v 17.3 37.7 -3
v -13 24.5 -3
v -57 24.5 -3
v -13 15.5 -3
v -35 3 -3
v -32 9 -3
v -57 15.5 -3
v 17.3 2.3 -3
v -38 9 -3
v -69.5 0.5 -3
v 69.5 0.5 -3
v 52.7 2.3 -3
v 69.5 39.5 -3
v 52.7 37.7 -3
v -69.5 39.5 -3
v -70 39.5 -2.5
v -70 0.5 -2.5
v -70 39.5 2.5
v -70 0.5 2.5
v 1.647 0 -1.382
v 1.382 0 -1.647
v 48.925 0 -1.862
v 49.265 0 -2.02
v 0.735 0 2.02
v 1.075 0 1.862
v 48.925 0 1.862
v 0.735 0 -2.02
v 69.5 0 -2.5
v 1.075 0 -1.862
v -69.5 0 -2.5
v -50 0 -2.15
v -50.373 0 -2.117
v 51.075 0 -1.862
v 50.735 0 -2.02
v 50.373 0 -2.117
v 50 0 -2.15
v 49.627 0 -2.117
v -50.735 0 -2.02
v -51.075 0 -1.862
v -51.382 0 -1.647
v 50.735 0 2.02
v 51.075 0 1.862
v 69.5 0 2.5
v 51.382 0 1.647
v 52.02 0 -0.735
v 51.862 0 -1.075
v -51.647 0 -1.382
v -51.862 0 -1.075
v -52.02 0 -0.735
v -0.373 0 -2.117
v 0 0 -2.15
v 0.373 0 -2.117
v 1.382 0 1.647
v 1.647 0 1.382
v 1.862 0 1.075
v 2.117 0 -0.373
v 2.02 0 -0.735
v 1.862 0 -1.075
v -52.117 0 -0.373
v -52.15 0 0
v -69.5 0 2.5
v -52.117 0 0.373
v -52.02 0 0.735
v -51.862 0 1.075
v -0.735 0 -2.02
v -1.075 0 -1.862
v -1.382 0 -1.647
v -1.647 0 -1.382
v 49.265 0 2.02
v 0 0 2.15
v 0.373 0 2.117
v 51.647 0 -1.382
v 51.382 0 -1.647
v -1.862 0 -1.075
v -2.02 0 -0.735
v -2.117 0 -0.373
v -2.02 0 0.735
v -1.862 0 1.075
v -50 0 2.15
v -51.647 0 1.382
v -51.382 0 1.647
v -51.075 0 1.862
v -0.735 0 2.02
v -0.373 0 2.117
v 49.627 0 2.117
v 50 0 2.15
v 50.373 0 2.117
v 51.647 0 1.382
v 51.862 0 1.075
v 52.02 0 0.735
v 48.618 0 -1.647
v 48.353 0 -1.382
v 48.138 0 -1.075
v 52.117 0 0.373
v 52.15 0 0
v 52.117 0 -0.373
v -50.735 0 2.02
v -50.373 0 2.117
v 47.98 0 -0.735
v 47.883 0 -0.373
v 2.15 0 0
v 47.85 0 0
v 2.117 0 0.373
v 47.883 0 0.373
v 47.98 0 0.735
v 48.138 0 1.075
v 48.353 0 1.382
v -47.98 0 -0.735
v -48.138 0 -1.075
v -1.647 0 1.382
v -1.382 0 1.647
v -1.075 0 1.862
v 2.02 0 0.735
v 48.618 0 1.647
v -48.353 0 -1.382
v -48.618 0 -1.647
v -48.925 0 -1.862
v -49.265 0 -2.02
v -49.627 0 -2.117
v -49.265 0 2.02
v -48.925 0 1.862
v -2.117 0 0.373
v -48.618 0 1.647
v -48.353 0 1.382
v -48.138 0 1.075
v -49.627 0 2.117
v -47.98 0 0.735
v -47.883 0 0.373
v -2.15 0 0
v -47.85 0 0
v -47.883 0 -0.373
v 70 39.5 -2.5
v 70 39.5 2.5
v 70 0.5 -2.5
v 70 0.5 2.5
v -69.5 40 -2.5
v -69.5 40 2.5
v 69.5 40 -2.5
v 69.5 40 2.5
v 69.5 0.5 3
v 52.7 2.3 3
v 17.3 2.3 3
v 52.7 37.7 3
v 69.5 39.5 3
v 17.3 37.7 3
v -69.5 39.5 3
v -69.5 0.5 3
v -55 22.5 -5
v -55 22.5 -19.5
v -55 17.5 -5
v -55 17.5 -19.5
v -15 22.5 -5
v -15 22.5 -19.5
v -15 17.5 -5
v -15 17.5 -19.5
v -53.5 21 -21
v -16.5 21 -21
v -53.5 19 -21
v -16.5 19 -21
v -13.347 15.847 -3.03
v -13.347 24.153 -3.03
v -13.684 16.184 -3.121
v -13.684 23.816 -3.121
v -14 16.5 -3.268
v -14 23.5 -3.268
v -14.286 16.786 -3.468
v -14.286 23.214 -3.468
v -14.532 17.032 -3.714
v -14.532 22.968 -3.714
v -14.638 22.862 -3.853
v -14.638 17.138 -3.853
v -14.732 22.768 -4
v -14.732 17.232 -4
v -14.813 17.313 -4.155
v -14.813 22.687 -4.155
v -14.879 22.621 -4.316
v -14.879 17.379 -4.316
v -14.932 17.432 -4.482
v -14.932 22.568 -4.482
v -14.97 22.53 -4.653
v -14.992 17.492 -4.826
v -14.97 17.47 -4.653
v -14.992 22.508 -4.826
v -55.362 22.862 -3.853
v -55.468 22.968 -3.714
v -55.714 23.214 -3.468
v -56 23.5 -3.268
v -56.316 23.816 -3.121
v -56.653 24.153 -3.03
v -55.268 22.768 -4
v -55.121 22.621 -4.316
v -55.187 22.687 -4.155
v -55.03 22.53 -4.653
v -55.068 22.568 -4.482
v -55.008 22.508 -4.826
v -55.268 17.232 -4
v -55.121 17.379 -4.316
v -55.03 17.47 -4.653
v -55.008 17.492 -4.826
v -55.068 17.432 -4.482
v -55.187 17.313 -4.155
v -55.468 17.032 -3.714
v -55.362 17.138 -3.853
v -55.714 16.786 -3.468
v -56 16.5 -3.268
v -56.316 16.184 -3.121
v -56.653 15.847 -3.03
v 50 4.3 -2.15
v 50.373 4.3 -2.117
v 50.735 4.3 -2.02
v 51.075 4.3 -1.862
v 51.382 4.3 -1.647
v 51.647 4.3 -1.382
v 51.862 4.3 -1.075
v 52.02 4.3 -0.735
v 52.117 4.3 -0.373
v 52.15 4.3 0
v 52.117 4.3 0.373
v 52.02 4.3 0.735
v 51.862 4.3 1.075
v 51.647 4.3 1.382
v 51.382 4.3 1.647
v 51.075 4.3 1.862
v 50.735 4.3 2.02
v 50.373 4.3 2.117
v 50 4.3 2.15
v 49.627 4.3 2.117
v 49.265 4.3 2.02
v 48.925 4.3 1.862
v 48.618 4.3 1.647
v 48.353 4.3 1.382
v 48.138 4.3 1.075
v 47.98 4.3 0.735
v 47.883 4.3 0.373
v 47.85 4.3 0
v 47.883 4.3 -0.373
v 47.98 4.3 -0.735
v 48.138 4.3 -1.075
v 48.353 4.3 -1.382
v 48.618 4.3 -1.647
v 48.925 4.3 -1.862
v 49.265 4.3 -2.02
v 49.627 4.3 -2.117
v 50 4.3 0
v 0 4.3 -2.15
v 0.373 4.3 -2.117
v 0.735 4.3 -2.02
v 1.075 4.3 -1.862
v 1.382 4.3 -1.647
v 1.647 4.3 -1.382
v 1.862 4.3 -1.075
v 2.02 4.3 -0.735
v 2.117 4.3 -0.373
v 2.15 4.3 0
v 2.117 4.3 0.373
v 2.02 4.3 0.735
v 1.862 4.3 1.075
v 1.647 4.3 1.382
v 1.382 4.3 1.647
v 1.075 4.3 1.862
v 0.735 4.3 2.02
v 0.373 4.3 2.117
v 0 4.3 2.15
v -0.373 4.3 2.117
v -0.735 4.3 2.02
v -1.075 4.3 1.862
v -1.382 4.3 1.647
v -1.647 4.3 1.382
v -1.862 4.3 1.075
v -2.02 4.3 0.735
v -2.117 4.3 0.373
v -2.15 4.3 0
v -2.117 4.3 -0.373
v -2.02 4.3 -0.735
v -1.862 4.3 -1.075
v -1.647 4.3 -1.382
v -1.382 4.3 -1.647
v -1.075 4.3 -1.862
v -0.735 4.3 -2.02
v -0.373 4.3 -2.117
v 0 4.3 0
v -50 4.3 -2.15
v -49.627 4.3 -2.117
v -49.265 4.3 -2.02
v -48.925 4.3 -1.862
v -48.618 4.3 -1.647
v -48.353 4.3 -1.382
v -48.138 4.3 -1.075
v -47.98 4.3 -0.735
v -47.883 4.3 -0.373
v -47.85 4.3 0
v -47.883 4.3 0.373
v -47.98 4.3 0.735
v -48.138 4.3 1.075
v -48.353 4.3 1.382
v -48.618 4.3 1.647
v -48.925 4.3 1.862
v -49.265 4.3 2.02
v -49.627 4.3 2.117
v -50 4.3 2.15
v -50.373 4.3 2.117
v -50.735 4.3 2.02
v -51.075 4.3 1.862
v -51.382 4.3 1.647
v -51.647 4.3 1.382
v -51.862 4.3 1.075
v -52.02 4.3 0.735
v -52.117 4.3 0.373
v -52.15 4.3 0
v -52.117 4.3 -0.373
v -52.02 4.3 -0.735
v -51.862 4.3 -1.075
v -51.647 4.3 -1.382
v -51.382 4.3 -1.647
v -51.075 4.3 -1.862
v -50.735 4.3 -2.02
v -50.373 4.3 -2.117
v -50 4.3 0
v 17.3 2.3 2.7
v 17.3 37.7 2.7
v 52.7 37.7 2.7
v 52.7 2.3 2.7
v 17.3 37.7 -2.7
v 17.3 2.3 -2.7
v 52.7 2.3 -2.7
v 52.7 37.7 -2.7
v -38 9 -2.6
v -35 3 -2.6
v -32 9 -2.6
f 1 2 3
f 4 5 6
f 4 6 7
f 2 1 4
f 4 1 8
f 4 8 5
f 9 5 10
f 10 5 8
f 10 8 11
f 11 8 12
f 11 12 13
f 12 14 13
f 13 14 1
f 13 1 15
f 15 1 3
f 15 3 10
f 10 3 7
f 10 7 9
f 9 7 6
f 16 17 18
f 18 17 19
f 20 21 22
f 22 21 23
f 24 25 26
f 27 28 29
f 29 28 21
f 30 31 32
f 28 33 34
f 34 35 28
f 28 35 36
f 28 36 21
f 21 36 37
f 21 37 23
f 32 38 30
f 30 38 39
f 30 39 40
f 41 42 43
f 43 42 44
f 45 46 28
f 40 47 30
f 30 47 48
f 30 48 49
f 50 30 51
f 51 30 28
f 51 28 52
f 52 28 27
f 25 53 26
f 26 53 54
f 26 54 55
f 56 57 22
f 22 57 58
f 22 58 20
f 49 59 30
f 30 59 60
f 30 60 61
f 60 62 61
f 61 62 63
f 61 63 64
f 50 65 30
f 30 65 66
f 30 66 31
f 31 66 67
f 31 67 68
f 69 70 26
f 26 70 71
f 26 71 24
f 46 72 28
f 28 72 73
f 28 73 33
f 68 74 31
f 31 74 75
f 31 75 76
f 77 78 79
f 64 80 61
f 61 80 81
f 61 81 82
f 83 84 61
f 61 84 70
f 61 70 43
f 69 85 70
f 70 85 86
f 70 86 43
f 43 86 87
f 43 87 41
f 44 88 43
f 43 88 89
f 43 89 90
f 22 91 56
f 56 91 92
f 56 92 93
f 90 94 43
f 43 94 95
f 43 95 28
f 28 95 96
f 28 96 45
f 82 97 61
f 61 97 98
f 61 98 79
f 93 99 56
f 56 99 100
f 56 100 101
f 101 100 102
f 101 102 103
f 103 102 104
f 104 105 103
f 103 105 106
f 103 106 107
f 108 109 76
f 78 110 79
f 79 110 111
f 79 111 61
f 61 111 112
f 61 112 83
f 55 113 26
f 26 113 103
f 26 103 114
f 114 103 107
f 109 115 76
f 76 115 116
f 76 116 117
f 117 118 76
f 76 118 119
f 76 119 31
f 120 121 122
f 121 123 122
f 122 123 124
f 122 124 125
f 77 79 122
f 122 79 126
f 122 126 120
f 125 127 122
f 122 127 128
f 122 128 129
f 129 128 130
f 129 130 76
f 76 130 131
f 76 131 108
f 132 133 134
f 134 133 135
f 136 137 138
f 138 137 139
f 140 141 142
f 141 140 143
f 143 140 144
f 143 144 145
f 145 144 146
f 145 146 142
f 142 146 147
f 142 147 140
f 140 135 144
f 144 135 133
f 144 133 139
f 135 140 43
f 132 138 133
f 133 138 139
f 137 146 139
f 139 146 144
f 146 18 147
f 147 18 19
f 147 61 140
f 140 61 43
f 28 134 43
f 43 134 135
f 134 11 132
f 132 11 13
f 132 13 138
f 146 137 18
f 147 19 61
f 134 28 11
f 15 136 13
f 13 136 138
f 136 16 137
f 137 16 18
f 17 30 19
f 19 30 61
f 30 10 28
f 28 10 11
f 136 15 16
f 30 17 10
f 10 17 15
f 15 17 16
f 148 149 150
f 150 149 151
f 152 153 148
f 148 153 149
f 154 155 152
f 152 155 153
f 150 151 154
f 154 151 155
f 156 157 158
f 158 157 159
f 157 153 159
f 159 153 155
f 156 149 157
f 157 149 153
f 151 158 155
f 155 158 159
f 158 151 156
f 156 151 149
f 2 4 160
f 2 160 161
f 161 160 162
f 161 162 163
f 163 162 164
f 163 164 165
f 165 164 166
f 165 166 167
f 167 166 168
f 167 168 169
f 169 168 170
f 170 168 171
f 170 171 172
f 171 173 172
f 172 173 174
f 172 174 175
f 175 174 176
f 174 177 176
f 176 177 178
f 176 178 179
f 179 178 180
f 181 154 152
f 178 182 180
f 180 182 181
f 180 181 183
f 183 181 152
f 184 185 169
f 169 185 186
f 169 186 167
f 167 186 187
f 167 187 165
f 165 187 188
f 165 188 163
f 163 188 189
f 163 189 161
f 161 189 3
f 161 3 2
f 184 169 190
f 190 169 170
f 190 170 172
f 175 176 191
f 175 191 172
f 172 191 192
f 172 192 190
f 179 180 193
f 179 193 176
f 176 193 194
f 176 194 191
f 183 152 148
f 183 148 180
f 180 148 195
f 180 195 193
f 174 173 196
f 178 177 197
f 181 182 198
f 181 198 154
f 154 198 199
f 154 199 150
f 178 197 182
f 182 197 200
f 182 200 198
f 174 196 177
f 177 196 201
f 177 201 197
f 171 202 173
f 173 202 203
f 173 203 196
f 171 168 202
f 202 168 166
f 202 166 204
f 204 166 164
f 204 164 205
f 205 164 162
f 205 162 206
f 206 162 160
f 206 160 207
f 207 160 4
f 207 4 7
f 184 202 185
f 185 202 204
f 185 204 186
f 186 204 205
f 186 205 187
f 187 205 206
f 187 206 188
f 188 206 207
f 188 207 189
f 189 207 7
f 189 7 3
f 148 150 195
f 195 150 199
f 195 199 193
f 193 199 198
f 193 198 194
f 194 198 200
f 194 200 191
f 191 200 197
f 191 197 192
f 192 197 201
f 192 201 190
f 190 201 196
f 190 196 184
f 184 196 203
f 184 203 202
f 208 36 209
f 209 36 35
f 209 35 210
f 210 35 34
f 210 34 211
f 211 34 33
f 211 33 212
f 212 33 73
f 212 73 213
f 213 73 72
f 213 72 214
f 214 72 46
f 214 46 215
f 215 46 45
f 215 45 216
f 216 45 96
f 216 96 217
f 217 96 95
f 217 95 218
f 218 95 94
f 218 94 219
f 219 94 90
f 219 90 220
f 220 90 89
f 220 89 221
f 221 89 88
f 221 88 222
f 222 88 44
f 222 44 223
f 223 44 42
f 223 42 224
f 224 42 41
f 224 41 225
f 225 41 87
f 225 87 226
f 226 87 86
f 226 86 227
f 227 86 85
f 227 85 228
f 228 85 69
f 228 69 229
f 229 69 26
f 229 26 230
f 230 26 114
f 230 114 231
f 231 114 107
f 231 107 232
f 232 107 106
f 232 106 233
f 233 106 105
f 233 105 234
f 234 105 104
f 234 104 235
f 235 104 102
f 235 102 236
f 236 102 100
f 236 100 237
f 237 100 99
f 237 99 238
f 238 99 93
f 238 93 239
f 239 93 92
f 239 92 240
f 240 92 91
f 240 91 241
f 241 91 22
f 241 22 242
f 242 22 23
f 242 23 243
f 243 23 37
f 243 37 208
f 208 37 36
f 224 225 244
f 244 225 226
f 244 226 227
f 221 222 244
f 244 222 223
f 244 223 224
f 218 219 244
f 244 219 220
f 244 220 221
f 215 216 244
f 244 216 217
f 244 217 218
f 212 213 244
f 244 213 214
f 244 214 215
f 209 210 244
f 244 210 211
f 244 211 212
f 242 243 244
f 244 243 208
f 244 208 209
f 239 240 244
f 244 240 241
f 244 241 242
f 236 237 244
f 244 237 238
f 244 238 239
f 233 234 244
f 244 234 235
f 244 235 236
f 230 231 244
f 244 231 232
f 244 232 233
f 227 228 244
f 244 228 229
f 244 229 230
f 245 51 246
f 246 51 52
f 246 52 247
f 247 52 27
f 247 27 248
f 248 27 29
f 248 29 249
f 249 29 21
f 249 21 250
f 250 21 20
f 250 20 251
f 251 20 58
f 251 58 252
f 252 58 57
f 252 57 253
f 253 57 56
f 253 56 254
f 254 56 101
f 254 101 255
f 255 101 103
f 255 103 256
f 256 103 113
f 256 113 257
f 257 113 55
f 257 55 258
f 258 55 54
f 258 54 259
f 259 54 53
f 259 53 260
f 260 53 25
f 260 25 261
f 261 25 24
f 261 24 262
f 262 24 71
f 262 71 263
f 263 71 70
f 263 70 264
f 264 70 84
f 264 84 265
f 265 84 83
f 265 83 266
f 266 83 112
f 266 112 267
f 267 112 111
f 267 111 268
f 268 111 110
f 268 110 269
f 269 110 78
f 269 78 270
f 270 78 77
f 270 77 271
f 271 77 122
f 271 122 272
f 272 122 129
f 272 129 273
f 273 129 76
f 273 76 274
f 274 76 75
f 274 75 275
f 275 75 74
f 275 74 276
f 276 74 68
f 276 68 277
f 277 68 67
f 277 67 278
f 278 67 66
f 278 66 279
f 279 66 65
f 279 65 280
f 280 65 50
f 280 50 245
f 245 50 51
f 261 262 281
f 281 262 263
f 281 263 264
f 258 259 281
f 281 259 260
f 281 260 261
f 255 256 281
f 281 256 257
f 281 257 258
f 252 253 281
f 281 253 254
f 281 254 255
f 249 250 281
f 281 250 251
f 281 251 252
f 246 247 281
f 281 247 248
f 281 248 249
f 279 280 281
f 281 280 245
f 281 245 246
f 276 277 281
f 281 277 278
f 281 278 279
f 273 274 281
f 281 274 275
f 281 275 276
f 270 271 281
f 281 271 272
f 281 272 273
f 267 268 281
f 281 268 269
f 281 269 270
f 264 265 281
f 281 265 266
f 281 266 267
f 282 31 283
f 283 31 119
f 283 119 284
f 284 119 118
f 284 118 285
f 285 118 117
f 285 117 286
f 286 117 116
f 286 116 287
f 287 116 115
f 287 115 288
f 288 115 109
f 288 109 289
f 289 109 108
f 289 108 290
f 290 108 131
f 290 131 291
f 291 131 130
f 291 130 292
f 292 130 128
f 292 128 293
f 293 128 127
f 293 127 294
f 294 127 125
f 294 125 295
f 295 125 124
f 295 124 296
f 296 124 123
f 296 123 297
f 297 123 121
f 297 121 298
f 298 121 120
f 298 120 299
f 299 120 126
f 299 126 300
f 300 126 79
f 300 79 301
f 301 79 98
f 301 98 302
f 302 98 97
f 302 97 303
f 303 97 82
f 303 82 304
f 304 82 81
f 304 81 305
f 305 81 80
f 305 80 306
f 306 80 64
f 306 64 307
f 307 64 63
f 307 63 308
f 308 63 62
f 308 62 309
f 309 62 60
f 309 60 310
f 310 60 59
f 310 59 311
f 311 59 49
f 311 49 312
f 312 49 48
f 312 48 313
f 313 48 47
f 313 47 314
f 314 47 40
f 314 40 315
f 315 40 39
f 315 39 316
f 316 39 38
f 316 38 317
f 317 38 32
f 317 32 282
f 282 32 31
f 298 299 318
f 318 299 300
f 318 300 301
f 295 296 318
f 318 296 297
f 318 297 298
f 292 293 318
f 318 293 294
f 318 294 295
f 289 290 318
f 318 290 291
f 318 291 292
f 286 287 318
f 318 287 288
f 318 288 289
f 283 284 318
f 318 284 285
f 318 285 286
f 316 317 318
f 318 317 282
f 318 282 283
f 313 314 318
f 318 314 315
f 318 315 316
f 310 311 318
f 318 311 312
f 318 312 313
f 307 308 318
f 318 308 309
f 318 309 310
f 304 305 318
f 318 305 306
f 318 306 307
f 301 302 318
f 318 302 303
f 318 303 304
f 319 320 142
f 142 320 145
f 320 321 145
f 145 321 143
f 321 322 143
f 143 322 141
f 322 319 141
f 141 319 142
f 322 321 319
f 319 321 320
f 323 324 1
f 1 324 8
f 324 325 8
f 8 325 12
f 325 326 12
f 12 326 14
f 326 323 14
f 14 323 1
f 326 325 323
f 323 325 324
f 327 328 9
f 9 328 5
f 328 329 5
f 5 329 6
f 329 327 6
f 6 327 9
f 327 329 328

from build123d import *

# Parameters (mm, degrees)
CROQUIS1_W              = 140
CROQUIS1_H              = 40
SALIENTE_EXTRUIR1_DEPTH = 3
CHAFL_N1_SIZE           = 0.5
CROQUIS4_W              = 40
CROQUIS4_H              = 5
SALIENTE_EXTRUIR3_DEPTH = 18
CHAFL_N2_SIZE           = 1.5
REDONDEO1_R             = 2
CROQUIS5_R              = 2.15
CORTAR_EXTRUIR1_DEPTH   = 4.3
CROQUIS6_W              = 35.4
CROQUIS6_H              = 35.4
CORTAR_EXTRUIR3_DEPTH   = 0.3
CROQUIS7_W              = 35.4
CROQUIS7_H              = 35.4
CORTAR_EXTRUIR5_DEPTH   = 0.3
CORTAR_EXTRUIR6_DEPTH   = 0.4


with BuildPart() as part:
    # Croquis1 → Saliente-Extruir1 (new, symmetric)
    with BuildSketch(Plane.XY):
        with Locations((0, 20)):
            Rectangle(CROQUIS1_W, CROQUIS1_H)
    extrude(amount=SALIENTE_EXTRUIR1_DEPTH, both=True)

    # Chaflán1
    chafl_n1_edges = [part.edges().sort_by_distance(p)[0] for p in [
        (70, 20, 3),
        (0, 40, 3),
        (-70, 20, 3),
        (0, 40, -3),
        (70, 20, -3),
        (0, 0, -3),
        (-70, 20, -3),
        (-70, 40, 0),
        (70, 40, 0),
        (70, 0, 0),
        (-70, 0, 0),
        (0, 0, 3),
    ]]
    chamfer(chafl_n1_edges, length=CHAFL_N1_SIZE)

    # Croquis4 → Saliente-Extruir3 (add)
    with BuildSketch(Plane.XY.offset(-3)):
        with Locations((-35, 20)):
            Rectangle(CROQUIS4_W, CROQUIS4_H)
    extrude(amount=-SALIENTE_EXTRUIR3_DEPTH)

    # Chaflán2
    chafl_n2_edges = [part.edges().sort_by_distance(p)[0] for p in [
        (-55, 20, -21),
        (-35, 22.5, -21),
        (-15, 20, -21),
        (-35, 17.5, -21),
    ]]
    chamfer(chafl_n2_edges, length=CHAFL_N2_SIZE)

    # Redondeo1
    redondeo1_edges = [part.edges().sort_by_distance(p)[0] for p in [
        (-55, 20, -3),
        (-35, 17.5, -3),
        (-15, 20, -3),
        (-35, 22.5, -3),
    ]]
    fillet(redondeo1_edges, radius=REDONDEO1_R)

    # Croquis5 → Cortar-Extruir1 (cut)
    with BuildSketch(Plane(origin=(0, 0, 0), x_dir=(1, 0, 0), z_dir=(0, 1, 0))):
        with Locations(Location((-50, 0, 0), (0, 0, 90))):
            Circle(CROQUIS5_R)
        with Locations(Location((0, 0, 0), (0, 0, 90))):
            Circle(CROQUIS5_R)
        with Locations(Location((50, 0, 0), (0, 0, 90))):
            Circle(CROQUIS5_R)
    extrude(amount=CORTAR_EXTRUIR1_DEPTH, mode=Mode.SUBTRACT)

    # Croquis6 → Cortar-Extruir3 (cut)
    with BuildSketch(Plane.XY.offset(3)):
        with Locations((35, 20)):
            Rectangle(CROQUIS6_W, CROQUIS6_H)
    extrude(amount=-CORTAR_EXTRUIR3_DEPTH, mode=Mode.SUBTRACT)

    # Croquis7 → Cortar-Extruir5 (cut)
    with BuildSketch(Plane.XY.offset(-3)):
        with Locations((35, 20)):
            Rectangle(CROQUIS7_W, CROQUIS7_H)
    extrude(amount=CORTAR_EXTRUIR5_DEPTH, mode=Mode.SUBTRACT)

    # Croquis8 → Cortar-Extruir6 (cut)
    with BuildSketch(Plane.XY.offset(-3)):
        Polygon((-38, 9), (-32, 9), (-35, 3), align=None)
    extrude(amount=CORTAR_EXTRUIR6_DEPTH, mode=Mode.SUBTRACT)


solid = part.part
